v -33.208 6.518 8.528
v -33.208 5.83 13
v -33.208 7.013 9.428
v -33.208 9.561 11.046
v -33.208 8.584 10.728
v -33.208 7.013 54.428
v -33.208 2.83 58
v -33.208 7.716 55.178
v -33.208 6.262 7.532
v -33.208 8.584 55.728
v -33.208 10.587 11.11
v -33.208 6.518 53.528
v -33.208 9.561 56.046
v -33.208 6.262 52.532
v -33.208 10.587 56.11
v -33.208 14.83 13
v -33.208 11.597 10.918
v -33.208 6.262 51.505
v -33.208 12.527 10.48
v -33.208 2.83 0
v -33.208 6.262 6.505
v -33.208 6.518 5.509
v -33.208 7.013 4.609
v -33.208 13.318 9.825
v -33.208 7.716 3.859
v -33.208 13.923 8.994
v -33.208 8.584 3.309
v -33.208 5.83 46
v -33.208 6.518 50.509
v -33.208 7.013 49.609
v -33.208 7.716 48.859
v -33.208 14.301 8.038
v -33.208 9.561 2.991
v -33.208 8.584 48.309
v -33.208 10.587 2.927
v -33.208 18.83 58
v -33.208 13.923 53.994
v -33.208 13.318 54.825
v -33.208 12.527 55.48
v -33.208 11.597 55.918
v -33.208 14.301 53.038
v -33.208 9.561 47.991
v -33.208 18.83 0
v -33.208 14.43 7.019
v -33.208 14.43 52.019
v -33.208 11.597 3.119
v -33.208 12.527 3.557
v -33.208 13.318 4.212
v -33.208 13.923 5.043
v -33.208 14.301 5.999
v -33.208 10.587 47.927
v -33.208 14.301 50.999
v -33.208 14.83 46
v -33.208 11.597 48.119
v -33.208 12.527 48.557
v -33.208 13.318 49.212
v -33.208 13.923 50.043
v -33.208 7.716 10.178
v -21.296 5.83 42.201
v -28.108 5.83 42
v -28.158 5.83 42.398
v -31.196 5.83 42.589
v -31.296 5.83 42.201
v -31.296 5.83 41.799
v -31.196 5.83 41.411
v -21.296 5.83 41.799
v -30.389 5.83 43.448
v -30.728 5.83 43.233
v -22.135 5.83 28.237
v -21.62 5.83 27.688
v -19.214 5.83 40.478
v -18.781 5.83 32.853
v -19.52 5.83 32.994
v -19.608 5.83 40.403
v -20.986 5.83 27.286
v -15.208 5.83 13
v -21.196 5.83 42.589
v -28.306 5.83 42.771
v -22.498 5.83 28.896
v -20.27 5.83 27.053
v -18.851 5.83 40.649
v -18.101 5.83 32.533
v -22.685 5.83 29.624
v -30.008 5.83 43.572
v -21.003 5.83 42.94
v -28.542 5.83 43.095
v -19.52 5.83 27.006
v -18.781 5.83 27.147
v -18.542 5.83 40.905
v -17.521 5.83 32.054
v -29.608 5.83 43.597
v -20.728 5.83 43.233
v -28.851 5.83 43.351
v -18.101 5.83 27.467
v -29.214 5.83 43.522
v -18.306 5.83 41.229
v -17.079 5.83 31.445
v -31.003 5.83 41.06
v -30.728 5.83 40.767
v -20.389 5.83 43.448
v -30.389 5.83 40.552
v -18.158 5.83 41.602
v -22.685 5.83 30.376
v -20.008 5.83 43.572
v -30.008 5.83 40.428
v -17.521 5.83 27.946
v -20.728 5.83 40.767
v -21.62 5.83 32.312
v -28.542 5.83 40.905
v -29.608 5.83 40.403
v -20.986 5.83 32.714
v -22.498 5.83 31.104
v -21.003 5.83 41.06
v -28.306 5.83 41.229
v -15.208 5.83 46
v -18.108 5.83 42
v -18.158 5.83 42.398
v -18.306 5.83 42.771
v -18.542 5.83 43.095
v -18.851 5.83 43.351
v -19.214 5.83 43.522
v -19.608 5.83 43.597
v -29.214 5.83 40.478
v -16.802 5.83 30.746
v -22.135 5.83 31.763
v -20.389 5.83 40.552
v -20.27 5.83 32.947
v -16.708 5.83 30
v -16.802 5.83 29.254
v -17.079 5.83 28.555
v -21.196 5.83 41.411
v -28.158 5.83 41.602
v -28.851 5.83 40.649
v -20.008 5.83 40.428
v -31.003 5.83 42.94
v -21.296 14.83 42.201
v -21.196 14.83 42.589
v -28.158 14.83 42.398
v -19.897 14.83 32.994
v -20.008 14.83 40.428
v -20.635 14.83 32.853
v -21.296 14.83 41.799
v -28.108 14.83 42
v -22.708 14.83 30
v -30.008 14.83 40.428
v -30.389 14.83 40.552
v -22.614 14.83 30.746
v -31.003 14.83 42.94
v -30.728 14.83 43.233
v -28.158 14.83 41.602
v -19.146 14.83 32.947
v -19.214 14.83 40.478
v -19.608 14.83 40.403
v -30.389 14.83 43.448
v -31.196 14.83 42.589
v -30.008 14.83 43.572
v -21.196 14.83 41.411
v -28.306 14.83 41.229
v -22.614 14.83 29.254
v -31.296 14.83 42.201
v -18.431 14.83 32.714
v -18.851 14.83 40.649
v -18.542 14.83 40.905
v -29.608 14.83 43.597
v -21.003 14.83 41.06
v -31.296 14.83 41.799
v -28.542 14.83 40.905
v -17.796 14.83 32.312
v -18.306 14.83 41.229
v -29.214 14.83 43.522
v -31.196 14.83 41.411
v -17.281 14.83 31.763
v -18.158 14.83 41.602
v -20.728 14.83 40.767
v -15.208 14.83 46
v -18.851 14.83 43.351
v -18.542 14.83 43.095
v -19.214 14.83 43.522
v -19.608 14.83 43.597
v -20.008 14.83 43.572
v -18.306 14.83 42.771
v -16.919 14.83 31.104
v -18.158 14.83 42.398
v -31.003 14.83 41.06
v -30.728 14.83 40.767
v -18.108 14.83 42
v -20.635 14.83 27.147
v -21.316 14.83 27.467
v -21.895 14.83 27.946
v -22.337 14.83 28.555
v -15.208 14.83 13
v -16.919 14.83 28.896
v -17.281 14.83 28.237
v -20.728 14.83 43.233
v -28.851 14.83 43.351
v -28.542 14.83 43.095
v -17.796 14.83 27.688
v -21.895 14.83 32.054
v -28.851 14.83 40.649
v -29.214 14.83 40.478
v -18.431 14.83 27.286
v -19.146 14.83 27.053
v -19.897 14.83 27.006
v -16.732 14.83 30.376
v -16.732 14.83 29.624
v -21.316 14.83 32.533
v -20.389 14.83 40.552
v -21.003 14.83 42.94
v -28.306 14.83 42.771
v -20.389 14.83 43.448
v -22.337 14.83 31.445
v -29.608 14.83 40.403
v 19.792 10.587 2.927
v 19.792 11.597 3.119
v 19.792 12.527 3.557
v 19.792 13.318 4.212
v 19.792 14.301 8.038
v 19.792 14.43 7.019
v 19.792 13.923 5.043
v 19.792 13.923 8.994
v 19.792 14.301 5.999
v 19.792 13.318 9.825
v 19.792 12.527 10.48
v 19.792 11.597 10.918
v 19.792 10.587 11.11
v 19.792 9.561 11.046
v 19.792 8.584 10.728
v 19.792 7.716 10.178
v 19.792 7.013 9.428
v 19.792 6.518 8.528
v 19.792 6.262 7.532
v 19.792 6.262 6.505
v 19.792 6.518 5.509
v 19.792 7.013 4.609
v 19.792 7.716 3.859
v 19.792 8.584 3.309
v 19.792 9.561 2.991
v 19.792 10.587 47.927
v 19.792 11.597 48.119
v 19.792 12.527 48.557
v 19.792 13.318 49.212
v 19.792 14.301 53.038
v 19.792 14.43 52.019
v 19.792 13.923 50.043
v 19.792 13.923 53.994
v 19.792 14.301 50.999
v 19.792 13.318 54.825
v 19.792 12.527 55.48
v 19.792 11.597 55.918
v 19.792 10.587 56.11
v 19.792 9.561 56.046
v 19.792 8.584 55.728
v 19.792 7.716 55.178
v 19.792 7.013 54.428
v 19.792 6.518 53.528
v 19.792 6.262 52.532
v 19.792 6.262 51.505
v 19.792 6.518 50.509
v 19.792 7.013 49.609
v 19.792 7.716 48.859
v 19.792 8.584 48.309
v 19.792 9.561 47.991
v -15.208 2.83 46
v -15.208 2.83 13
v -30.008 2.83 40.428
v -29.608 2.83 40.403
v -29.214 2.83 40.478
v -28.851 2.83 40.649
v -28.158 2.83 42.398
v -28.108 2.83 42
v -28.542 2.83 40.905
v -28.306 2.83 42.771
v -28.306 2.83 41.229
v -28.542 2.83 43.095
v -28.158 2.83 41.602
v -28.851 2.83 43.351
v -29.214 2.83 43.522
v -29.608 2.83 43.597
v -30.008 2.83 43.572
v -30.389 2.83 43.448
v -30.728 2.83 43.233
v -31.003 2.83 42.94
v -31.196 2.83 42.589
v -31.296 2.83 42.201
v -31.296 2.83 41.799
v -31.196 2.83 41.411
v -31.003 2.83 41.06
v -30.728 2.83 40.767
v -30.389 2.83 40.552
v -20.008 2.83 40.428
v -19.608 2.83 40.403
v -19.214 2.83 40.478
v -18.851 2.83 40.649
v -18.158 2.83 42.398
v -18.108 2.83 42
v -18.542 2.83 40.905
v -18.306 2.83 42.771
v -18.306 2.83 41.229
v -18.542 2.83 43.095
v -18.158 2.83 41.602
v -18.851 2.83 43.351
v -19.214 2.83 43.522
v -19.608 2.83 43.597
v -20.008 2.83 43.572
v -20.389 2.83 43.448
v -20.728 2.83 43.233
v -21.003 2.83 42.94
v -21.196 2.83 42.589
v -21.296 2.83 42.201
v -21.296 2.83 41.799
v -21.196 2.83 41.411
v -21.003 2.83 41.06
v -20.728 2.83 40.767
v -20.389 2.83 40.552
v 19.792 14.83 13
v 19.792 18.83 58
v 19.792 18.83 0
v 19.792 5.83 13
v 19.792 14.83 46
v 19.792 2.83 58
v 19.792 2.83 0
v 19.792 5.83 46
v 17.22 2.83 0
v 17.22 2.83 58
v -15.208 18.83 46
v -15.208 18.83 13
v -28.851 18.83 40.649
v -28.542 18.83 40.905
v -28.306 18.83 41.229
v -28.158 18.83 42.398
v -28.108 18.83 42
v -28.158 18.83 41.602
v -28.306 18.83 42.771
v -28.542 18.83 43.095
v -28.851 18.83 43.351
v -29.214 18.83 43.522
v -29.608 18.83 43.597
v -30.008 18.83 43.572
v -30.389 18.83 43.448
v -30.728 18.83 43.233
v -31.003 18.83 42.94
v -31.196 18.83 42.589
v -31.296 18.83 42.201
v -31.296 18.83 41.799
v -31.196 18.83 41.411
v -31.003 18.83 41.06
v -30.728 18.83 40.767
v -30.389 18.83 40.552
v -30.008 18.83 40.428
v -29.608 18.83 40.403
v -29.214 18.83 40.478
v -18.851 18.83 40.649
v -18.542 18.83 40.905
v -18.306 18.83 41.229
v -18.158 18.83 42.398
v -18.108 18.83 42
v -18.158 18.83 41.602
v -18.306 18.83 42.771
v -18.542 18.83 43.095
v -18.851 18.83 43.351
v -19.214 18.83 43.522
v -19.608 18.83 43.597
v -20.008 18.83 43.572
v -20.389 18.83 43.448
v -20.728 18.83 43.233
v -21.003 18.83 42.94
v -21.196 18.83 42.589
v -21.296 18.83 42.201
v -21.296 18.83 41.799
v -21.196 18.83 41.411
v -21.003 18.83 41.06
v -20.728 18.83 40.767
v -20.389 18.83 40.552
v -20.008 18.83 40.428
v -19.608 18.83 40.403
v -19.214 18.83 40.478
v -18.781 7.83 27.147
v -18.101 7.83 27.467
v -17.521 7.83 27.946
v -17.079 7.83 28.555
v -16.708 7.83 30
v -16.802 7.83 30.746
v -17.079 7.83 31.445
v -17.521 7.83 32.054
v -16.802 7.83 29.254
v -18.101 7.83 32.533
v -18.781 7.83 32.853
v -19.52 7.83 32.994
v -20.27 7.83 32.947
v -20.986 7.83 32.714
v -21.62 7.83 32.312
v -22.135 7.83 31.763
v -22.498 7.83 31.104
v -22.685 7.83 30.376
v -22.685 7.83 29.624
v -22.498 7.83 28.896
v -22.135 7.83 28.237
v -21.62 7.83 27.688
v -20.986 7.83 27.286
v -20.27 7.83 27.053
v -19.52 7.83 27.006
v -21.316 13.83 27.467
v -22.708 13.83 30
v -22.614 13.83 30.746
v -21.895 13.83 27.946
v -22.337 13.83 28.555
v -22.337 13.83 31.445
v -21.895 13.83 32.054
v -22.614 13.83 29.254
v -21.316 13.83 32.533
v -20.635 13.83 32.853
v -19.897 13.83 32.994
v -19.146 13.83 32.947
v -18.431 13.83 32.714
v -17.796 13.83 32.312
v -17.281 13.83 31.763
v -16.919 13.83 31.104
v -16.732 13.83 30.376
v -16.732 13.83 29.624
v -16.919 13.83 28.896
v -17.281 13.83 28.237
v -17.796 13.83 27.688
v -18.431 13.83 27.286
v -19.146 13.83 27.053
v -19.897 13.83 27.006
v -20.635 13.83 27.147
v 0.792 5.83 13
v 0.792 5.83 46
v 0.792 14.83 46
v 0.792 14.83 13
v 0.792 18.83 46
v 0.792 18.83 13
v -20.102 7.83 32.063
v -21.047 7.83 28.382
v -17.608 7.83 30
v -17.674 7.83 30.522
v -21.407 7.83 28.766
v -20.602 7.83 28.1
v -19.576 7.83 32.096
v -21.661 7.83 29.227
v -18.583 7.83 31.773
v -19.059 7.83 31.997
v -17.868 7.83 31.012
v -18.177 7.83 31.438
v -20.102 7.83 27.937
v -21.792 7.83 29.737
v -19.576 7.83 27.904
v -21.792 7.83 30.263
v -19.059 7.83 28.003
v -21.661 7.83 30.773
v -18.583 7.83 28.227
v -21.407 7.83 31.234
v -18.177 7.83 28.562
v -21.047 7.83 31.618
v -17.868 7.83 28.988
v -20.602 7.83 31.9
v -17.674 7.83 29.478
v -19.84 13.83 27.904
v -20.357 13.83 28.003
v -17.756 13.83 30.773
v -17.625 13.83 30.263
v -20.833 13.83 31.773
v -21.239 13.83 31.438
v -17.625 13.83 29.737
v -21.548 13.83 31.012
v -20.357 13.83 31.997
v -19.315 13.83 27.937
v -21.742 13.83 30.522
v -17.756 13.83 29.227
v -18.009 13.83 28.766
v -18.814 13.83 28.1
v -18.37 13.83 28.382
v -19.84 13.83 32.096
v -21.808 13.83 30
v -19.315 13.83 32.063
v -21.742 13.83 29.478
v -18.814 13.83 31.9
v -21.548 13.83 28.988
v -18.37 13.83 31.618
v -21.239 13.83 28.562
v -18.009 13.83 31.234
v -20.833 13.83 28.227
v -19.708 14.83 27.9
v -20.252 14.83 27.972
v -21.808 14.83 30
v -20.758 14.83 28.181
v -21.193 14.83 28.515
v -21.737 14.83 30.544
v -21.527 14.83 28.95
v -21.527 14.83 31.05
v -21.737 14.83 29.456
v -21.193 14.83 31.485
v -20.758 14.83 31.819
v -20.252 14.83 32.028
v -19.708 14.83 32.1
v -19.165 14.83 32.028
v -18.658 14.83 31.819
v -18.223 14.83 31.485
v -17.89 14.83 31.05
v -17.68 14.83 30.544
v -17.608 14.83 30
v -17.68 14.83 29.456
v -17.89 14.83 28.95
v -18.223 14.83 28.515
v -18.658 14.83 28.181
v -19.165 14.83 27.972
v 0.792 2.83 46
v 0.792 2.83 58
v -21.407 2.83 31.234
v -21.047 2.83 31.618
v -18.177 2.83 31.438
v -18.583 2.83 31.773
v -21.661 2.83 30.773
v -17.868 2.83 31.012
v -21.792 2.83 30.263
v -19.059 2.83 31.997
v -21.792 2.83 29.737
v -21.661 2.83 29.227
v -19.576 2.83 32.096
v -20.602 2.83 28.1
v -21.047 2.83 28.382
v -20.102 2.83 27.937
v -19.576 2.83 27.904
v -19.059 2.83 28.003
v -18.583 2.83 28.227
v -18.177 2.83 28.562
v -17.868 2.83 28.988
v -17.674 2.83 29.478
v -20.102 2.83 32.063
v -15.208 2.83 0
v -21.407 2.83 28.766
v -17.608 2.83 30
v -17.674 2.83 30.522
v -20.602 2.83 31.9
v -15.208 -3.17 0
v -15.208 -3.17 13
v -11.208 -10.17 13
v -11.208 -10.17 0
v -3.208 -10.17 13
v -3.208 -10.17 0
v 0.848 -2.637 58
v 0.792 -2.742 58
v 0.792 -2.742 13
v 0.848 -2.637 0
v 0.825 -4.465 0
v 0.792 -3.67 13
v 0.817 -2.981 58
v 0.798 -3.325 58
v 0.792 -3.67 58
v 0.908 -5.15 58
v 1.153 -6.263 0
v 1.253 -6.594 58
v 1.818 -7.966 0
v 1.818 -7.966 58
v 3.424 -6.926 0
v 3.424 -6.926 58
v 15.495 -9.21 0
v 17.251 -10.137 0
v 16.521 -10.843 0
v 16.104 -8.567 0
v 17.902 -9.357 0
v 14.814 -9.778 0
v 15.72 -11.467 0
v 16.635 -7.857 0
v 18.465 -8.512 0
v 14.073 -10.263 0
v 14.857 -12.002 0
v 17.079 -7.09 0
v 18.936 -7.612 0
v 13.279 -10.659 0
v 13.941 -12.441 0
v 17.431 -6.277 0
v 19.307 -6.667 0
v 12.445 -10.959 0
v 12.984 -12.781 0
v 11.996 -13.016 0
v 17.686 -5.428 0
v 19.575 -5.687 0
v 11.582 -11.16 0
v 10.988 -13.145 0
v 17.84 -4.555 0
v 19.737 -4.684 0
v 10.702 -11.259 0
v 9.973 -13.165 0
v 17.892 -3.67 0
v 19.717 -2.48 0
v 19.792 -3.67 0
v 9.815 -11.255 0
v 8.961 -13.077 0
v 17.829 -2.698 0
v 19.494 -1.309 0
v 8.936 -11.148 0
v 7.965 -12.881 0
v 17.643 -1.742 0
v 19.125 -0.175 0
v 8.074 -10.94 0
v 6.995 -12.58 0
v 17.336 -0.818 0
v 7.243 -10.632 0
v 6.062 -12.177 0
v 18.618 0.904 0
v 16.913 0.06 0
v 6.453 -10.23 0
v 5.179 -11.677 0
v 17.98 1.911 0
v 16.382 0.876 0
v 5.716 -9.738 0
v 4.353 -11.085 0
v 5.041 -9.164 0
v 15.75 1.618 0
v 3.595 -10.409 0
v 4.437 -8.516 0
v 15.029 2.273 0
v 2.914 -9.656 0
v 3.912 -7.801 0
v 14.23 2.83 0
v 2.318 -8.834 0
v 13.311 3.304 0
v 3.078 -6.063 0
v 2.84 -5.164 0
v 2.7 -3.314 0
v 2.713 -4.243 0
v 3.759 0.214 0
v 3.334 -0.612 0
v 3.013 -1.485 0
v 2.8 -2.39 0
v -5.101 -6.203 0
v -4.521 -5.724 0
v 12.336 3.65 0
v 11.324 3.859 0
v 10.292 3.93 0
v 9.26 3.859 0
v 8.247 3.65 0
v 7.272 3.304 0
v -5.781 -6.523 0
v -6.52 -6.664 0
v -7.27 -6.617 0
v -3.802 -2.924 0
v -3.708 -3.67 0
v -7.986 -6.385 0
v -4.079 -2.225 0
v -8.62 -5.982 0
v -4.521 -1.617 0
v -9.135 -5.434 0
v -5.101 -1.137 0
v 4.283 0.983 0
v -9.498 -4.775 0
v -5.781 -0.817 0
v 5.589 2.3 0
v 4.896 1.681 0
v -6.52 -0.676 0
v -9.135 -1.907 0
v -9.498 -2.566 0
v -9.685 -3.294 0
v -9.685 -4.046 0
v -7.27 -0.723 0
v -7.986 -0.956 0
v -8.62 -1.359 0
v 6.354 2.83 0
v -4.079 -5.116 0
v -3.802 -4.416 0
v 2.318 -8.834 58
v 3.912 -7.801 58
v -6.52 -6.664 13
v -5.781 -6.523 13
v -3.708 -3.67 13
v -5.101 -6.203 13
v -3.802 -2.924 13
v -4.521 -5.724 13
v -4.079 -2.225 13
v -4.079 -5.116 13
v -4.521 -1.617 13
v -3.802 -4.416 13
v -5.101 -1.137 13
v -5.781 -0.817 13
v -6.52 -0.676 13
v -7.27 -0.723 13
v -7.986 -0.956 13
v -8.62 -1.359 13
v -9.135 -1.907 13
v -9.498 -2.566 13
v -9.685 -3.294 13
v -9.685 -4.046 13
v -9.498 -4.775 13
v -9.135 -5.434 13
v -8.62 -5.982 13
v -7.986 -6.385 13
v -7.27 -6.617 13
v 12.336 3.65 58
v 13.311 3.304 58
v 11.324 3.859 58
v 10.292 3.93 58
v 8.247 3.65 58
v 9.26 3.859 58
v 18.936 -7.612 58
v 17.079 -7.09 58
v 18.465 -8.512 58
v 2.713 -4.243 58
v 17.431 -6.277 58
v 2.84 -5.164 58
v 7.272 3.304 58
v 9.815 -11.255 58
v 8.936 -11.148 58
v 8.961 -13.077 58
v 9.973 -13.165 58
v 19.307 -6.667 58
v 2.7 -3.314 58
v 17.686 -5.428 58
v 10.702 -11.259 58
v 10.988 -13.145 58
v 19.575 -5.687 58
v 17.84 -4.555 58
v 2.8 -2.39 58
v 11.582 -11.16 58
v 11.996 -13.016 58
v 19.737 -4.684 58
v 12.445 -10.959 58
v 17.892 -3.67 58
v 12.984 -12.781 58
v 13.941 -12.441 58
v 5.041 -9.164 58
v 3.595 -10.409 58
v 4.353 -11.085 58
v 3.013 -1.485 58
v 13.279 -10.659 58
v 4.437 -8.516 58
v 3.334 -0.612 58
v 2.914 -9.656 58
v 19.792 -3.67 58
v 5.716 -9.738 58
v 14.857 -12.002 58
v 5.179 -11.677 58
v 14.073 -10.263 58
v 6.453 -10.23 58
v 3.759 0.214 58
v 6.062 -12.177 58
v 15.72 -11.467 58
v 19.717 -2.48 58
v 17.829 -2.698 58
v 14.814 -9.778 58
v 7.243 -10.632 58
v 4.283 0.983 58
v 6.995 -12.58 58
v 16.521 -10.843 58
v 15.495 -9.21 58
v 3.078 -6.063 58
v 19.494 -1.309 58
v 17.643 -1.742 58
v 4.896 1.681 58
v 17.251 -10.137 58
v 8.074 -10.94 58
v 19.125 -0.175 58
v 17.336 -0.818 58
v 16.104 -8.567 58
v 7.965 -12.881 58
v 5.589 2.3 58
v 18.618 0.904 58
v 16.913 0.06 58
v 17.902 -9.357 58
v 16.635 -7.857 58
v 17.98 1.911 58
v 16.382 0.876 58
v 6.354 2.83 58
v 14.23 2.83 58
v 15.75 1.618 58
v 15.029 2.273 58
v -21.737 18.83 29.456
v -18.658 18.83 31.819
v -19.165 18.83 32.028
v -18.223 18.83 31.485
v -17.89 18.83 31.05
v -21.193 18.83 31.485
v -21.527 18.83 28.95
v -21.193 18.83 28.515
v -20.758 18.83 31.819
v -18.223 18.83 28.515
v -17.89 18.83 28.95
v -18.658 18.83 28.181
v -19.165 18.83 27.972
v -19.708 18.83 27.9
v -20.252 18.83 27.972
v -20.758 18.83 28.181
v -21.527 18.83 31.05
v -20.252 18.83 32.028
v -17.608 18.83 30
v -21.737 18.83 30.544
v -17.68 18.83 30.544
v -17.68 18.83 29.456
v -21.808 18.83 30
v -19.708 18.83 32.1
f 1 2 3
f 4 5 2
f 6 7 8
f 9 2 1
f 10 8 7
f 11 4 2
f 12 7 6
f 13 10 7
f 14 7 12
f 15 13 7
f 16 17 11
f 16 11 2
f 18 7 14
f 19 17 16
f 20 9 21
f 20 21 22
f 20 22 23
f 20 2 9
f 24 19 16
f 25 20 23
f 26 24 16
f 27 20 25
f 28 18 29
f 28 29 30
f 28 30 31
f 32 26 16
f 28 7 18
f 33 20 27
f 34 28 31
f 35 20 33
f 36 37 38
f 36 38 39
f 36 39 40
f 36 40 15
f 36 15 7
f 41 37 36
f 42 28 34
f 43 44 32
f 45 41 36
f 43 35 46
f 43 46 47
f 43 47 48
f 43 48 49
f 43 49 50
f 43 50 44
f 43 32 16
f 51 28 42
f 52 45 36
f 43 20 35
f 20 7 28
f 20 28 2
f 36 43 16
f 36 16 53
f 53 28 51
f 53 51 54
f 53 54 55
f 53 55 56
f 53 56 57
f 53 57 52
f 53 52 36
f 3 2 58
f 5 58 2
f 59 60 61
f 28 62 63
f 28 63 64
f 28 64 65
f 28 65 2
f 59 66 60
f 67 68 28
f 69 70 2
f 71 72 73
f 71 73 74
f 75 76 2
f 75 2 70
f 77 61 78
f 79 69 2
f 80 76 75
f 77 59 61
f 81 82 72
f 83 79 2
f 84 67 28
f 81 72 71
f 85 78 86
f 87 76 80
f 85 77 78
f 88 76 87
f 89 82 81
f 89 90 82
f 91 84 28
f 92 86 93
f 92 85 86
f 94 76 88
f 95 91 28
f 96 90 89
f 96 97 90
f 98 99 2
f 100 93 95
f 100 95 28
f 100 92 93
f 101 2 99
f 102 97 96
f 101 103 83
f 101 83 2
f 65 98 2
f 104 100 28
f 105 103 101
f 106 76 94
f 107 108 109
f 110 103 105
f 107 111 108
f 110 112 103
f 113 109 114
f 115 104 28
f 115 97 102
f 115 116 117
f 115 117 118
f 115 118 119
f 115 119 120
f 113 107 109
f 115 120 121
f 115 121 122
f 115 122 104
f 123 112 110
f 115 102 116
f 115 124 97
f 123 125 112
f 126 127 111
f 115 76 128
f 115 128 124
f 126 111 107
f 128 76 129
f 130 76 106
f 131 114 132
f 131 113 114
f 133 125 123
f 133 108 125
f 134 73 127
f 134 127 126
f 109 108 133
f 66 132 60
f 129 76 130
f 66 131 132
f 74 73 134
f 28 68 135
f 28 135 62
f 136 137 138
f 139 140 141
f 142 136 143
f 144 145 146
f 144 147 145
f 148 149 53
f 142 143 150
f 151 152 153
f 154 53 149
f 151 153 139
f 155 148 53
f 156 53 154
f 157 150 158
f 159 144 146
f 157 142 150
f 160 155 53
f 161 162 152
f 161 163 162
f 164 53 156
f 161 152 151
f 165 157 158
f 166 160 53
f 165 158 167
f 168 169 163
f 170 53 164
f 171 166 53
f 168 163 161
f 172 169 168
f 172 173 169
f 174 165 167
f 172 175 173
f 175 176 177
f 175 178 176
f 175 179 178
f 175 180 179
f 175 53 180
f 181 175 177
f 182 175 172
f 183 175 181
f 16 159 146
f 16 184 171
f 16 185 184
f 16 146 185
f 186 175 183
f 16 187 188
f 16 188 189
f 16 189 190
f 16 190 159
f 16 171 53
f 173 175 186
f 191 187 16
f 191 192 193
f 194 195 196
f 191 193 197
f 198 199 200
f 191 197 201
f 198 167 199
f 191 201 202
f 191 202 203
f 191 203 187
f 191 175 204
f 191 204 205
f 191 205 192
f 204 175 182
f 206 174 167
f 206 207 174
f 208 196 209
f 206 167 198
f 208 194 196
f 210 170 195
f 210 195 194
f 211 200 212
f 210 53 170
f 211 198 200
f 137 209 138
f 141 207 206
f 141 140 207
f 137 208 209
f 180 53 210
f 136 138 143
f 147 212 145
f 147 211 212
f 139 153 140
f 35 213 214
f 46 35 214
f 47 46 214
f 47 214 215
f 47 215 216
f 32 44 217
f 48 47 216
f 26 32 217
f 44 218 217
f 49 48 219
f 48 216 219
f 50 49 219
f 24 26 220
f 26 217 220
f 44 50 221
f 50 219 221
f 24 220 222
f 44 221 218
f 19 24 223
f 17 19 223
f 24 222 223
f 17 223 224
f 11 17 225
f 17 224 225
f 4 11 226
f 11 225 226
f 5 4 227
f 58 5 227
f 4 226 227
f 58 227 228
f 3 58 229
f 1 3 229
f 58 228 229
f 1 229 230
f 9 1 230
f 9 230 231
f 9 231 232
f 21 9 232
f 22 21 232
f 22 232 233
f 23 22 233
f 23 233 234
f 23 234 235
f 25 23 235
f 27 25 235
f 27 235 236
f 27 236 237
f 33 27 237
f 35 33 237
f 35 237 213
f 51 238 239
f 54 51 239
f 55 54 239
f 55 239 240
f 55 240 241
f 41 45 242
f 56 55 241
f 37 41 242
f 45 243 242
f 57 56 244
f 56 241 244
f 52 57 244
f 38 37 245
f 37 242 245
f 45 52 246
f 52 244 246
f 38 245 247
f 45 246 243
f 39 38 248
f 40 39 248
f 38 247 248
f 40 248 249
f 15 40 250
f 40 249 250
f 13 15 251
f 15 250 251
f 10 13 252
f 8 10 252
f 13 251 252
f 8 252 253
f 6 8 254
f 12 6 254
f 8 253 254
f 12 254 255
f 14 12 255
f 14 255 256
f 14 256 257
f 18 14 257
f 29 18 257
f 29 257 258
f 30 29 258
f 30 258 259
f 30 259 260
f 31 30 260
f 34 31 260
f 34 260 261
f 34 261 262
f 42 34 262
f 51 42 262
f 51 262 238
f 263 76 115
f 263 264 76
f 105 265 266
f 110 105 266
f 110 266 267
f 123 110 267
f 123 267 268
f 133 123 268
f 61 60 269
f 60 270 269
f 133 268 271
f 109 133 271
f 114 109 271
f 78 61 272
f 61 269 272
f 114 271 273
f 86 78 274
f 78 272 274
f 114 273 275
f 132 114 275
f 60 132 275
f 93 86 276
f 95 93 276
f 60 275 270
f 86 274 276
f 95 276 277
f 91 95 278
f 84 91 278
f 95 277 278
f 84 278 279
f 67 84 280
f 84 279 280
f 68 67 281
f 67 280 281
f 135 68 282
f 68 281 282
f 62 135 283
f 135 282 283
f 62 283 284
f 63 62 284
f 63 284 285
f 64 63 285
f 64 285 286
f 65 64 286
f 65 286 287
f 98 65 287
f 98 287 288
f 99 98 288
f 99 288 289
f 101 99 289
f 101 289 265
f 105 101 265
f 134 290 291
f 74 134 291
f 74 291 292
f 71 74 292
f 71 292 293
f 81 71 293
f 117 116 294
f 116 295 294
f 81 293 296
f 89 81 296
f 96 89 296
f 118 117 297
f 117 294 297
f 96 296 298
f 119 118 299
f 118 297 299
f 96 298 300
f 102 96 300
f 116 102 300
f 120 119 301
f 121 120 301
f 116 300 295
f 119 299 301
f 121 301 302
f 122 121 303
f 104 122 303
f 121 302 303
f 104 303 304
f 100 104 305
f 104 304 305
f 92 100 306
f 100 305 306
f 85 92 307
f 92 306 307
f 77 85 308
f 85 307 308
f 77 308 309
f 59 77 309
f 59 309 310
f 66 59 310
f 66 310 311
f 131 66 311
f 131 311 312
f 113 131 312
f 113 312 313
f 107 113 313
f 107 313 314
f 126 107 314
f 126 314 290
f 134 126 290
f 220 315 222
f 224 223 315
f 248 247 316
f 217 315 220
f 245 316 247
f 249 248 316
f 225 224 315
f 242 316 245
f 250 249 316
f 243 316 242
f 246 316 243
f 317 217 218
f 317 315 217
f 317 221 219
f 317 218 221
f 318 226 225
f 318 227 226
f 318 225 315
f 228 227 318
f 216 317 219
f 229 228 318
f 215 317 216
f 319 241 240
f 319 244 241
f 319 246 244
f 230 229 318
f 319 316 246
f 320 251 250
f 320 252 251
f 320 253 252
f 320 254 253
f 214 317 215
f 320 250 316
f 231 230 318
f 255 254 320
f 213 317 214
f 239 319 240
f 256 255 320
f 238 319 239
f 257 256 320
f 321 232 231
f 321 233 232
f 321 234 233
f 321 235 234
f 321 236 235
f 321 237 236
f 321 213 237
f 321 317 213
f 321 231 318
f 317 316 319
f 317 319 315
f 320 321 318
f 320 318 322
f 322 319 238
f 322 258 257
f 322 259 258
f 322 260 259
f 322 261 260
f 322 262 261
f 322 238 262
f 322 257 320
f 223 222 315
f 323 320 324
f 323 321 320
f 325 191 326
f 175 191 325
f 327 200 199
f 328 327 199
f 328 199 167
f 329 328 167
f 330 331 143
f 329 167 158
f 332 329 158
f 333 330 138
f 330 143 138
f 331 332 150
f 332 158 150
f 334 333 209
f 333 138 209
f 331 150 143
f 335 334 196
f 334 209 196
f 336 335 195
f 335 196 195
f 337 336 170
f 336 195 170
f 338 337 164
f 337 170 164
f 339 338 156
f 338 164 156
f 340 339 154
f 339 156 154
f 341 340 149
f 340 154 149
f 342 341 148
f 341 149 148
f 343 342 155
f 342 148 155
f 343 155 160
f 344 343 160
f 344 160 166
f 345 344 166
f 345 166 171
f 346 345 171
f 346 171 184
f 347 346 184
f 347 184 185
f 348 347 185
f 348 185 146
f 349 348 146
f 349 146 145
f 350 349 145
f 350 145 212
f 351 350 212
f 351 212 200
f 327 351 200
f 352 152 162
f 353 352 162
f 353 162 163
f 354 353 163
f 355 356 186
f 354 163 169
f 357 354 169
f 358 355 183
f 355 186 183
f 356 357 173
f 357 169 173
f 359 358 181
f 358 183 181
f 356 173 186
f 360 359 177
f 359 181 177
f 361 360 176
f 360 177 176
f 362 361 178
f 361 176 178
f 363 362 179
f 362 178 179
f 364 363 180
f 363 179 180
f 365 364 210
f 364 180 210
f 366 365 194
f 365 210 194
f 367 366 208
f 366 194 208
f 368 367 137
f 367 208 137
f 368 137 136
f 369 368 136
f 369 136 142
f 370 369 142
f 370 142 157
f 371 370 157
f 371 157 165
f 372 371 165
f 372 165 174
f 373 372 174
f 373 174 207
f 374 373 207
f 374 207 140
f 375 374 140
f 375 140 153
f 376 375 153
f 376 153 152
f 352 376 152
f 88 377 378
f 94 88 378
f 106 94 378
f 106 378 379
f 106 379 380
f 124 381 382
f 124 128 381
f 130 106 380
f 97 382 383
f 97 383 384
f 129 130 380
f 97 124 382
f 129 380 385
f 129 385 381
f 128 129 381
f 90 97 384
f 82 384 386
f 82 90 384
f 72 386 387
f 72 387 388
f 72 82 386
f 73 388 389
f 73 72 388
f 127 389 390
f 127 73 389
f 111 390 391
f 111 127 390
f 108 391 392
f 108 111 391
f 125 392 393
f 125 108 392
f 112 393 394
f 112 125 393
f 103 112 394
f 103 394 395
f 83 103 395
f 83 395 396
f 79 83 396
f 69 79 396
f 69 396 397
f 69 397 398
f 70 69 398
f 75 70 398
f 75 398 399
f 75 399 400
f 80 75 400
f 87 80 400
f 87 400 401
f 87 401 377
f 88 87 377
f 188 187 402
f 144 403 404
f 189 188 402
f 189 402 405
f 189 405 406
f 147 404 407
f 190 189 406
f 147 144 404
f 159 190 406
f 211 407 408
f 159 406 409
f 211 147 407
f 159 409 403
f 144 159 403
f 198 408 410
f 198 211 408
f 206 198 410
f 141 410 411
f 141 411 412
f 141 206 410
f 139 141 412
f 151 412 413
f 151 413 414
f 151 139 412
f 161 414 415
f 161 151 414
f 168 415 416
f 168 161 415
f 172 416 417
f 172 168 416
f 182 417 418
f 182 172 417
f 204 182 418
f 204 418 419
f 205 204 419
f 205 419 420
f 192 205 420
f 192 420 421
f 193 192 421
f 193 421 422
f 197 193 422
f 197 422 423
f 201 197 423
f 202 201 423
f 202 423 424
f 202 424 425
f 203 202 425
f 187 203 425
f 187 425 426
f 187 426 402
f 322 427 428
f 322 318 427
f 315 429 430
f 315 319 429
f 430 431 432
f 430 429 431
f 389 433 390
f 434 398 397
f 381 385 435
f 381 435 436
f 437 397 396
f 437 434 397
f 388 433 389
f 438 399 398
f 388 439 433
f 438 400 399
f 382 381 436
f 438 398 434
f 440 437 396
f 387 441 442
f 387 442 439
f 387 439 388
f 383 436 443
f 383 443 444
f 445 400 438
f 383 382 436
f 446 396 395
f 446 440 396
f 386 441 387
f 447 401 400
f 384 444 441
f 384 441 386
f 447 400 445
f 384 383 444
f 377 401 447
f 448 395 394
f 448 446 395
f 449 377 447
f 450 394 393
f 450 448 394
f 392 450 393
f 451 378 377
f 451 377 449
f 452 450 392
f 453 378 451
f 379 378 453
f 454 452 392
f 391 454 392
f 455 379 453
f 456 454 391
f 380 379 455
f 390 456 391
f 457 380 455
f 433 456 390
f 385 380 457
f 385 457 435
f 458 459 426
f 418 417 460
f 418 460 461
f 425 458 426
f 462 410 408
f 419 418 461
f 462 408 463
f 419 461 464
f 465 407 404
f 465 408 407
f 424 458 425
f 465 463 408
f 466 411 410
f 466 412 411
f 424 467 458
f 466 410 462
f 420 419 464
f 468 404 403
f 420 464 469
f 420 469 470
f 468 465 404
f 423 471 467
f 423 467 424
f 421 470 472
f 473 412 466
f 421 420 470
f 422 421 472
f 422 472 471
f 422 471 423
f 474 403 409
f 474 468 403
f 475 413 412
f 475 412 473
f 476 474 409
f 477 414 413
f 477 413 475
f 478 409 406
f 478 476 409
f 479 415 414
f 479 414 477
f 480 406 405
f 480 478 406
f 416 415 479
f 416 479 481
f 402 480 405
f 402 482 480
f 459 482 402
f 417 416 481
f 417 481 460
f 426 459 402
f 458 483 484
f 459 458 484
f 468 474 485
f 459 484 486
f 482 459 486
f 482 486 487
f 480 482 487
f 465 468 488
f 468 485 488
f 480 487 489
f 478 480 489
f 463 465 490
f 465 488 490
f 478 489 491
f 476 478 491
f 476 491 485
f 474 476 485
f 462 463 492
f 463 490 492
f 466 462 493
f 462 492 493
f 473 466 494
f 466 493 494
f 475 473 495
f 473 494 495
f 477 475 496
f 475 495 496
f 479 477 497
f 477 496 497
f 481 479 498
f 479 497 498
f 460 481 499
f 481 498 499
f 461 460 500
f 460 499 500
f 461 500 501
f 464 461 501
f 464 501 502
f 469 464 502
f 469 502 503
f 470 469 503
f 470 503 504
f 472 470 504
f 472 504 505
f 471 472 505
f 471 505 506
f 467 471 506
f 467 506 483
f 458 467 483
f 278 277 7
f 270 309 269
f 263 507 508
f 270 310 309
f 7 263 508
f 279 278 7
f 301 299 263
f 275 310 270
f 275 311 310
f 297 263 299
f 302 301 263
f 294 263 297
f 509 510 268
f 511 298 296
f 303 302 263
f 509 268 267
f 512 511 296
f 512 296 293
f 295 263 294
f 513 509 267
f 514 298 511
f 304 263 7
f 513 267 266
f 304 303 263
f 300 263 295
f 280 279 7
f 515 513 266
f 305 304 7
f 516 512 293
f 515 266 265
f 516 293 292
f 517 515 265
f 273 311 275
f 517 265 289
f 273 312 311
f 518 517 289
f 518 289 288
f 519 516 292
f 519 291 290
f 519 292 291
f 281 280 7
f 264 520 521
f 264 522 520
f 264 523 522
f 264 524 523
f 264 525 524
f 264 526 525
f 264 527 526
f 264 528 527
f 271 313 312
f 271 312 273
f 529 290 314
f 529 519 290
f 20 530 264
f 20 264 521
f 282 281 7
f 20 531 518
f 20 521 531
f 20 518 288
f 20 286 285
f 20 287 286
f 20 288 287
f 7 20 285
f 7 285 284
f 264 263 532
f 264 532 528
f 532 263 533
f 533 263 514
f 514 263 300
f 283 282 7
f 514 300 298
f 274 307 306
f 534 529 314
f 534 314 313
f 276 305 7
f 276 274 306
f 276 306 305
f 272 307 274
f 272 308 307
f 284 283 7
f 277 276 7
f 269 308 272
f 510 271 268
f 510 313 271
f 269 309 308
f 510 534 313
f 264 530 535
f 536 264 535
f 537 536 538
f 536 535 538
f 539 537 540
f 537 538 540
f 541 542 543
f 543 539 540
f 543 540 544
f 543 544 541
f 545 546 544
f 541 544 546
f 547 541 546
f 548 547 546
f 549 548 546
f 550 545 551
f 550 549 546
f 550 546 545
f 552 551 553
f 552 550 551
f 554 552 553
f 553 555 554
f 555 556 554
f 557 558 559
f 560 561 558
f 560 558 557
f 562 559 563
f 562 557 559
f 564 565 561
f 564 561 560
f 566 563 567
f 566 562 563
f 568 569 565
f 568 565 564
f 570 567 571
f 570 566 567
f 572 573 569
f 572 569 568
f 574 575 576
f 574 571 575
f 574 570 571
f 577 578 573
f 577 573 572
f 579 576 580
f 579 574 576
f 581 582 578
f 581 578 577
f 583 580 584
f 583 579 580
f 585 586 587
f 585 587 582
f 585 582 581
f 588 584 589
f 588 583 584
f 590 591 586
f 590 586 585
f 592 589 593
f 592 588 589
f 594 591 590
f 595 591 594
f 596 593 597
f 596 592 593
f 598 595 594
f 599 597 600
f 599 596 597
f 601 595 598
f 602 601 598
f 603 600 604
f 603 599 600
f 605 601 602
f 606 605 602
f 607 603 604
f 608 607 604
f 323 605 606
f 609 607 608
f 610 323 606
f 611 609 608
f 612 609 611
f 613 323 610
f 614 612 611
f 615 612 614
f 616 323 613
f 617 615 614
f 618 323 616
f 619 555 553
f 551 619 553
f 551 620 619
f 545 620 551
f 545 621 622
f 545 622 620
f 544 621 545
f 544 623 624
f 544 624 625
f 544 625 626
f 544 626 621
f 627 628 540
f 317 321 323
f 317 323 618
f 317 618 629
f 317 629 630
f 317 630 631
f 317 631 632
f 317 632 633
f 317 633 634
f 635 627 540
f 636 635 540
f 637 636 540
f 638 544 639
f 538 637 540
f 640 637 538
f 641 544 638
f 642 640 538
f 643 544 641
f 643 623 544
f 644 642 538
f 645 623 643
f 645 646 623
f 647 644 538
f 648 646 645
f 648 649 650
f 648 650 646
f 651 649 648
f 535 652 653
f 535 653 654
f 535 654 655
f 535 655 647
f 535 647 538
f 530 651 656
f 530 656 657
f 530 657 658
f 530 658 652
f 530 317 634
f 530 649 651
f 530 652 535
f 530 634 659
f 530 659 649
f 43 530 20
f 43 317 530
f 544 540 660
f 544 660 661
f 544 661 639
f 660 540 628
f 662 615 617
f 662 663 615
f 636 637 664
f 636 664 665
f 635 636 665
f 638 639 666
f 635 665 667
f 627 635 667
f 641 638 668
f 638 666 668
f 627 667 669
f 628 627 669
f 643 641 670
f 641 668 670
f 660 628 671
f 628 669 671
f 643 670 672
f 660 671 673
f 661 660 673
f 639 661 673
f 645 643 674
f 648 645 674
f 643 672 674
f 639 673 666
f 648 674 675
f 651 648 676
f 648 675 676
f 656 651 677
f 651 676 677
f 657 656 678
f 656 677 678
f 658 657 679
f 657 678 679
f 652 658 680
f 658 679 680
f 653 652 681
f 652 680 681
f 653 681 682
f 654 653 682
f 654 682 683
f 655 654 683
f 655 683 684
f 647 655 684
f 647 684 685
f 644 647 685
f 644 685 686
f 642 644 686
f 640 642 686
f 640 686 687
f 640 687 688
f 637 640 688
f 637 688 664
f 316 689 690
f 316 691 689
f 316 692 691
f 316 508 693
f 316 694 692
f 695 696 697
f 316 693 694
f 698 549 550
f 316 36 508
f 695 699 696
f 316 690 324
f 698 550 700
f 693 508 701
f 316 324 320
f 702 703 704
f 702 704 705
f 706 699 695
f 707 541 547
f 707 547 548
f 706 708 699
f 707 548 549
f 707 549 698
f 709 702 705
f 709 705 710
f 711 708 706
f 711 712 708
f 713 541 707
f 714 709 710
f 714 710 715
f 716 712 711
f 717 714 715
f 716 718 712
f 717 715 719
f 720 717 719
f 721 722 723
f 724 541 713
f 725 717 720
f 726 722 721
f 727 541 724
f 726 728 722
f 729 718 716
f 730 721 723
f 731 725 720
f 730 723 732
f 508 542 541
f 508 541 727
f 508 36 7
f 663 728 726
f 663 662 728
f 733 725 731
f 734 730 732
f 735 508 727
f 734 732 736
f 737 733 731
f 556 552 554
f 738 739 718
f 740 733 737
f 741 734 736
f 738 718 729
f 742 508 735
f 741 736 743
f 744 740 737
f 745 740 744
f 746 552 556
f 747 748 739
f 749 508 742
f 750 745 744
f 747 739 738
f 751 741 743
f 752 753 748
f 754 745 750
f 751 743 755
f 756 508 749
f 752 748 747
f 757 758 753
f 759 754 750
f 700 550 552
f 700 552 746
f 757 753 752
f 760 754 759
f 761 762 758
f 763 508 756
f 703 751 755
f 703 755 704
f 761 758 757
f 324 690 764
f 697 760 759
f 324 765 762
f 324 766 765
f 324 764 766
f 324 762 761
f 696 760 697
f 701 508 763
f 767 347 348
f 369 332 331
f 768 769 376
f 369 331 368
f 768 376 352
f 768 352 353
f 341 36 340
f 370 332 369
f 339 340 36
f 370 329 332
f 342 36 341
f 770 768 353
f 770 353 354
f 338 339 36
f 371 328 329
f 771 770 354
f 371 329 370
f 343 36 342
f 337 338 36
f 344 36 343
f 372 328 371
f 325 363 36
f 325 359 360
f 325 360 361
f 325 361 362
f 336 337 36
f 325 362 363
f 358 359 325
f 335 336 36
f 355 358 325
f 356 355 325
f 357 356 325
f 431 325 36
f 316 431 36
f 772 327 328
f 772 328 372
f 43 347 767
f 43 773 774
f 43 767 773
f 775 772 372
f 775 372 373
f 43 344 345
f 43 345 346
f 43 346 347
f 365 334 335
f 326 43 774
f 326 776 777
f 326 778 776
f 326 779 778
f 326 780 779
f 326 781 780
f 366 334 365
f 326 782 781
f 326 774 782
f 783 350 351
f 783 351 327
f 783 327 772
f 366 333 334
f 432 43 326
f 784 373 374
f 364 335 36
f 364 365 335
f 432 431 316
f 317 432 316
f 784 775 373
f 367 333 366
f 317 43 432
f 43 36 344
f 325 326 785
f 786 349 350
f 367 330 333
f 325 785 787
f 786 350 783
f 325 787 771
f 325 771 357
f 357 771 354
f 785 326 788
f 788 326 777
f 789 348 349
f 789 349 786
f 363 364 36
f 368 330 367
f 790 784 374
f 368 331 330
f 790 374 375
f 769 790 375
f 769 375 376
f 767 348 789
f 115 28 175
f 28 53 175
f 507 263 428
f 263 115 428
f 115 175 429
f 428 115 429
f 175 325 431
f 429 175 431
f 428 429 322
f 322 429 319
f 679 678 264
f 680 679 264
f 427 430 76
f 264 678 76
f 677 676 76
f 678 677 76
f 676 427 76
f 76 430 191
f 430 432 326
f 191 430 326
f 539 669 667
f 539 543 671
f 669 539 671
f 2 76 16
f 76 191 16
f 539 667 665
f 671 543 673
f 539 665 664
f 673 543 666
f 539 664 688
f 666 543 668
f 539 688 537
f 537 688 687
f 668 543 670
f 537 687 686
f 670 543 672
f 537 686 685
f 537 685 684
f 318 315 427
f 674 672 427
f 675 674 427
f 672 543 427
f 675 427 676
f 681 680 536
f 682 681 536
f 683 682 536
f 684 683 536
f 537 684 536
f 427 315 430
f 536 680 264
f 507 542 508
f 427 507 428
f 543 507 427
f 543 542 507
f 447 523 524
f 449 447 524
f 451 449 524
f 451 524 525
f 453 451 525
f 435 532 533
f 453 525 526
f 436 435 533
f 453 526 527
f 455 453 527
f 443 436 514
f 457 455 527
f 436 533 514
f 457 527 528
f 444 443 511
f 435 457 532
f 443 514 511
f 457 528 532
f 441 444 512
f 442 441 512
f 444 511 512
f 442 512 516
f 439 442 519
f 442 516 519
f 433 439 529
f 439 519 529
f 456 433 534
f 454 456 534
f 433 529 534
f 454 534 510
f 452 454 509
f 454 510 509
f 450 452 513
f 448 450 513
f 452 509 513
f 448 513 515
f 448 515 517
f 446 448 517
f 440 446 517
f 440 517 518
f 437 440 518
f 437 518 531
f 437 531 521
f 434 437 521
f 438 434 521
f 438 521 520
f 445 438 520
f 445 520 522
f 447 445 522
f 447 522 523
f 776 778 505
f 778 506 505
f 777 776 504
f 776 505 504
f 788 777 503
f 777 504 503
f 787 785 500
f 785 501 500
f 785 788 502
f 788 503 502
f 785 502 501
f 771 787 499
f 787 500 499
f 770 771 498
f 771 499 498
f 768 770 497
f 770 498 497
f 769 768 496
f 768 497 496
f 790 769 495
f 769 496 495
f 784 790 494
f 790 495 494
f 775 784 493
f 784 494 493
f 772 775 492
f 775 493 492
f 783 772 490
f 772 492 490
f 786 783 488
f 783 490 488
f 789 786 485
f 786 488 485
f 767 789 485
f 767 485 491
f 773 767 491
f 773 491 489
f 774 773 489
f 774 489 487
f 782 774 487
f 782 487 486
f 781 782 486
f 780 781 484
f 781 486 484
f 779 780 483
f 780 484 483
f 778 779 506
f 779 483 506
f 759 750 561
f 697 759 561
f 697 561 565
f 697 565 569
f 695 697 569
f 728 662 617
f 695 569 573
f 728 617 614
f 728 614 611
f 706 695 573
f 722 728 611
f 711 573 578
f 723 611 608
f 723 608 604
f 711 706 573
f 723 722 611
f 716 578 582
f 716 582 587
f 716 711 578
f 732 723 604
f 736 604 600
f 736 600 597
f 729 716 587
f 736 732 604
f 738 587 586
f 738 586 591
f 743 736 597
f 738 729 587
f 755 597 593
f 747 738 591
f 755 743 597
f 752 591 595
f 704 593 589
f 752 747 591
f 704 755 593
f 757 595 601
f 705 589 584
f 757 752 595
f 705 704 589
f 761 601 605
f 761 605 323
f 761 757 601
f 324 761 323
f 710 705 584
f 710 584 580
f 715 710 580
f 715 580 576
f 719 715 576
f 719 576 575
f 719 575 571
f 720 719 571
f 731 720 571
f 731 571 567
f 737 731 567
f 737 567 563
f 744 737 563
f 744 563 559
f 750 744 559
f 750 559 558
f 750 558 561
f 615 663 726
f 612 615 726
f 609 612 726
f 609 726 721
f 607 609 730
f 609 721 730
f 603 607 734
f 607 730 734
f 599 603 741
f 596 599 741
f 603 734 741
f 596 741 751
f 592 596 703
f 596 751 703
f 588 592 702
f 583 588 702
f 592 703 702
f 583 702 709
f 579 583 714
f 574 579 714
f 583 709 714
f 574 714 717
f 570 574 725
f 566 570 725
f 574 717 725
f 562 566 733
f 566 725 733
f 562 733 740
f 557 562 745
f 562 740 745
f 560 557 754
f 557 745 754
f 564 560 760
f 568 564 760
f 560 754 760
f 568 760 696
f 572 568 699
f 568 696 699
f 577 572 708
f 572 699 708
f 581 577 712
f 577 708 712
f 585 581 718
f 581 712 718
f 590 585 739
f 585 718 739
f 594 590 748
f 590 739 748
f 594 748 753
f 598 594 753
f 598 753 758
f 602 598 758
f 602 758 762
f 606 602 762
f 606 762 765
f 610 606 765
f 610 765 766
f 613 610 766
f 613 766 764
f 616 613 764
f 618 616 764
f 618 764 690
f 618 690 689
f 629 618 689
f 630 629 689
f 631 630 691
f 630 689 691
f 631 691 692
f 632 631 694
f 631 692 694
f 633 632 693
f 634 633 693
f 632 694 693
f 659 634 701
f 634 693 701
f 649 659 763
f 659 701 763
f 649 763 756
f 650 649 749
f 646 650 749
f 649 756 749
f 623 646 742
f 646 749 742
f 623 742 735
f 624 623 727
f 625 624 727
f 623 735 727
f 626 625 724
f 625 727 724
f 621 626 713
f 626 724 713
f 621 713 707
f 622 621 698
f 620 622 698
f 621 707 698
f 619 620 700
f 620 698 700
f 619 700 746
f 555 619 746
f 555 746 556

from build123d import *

# Parameters (mm, degrees)
PAD_DEPTH       = 58
SKETCH001_R     = 9.5
SKETCH001_R_2   = 7.6
PAD001_DEPTH    = 58
SKETCH002_R     = 7.6
SKETCH002_R_2   = 3
POCKET_DEPTH    = 58
SKETCH003_R     = 4.1
SKETCH003_W     = 9
SKETCH003_H     = 33
POCKET001_DEPTH = 53
SKETCH004_W     = 16
SKETCH004_H     = 16
POCKET002_DEPTH = 45
SKETCH005_W     = 16
SKETCH005_H     = 33
POCKET003_DEPTH = 40
SKETCH006_R     = 2.1
SKETCH006_R_2   = 1.6
POCKET004_DEPTH = 30
SKETCH007_R     = 3
SKETCH007_R_2   = 2.1
PAD002_DEPTH    = 5
SKETCH008_R     = 3
SKETCH008_R_2   = 2.1
PAD003_DEPTH    = 5
POCKET005_DEPTH = 58


with BuildPart() as part:
    # Sketch → Pad (new body)
    with BuildSketch(Plane.XY):
        Polygon((-33.20822, 18.829675), (19.79178, 18.829675), (19.79178, 2.829675), (3.79178, 2.829675), (-3.20822, -10.170325), (-11.20822, -10.170325), (-15.20822, -3.170325), (-15.20822, 2.829675), (-33.20822, 2.829675), align=None)
    extrude(amount=PAD_DEPTH)

    # Sketch001 → Pad001 (new body)
    with BuildSketch(Plane.XY.offset(58)):
        with Locations((10.29178, -3.670325)):
            Circle(SKETCH001_R)
        with Locations((10.29178, -3.670325)):
            Circle(SKETCH001_R_2, mode=Mode.SUBTRACT)
    extrude(amount=-PAD001_DEPTH)

    # Sketch002 → Pocket (cut)
    with BuildSketch(Plane.XY.offset(58)):
        with Locations((10.29178, -3.670325)):
            Circle(SKETCH002_R)
        with Locations((-6.70822, -3.670325)):
            Circle(SKETCH002_R_2)
    extrude(amount=-POCKET_DEPTH, mode=Mode.SUBTRACT)

    # Sketch003 → Pocket001 (cut)
    with BuildSketch(Plane.YZ.offset(19.79178)):
        with Locations((10.329675, 52.018545)):
            Circle(SKETCH003_R)
        with Locations((10.329675, 7.018545)):
            Circle(SKETCH003_R)
        with Locations((10.329675, 29.5)):
            Rectangle(SKETCH003_W, SKETCH003_H)
    extrude(amount=-POCKET001_DEPTH, mode=Mode.SUBTRACT)

    # Sketch004 → Pocket002 (cut)
    with BuildSketch(Plane.XY.offset(58)):
        with Locations((-7.20822, -5.170325)):
            Rectangle(SKETCH004_W, SKETCH004_H)
    extrude(amount=-POCKET002_DEPTH, mode=Mode.SUBTRACT)

    # Sketch005 → Pocket003 (cut)
    with BuildSketch(Plane.XZ.offset(-2.829675)):
        with Locations((-7.20822, 29.5)):
            Rectangle(SKETCH005_W, SKETCH005_H)
    extrude(amount=-POCKET003_DEPTH, mode=Mode.SUBTRACT)

    # Sketch006 → Pocket004 (cut)
    with BuildSketch(Plane.XZ.offset(-2.829675)):
        with Locations((-19.70822, 30)):
            Circle(SKETCH006_R)
        with Locations((-29.70822, 42)):
            Circle(SKETCH006_R_2)
        with Locations((-19.70822, 42)):
            Circle(SKETCH006_R_2)
    extrude(amount=-POCKET004_DEPTH, mode=Mode.SUBTRACT)

    # Sketch007 → Pad002 (new body)
    with BuildSketch(Plane.XZ.offset(-2.829675)):
        with Locations((-19.70822, 30)):
            Circle(SKETCH007_R)
        with Locations((-19.70822, 30)):
            Circle(SKETCH007_R_2, mode=Mode.SUBTRACT)
    extrude(amount=-PAD002_DEPTH)

    # Sketch008 → Pad003 (new body)
    with BuildSketch(Plane(origin=(0, 18.829675, 0), x_dir=(-1, 0, 0), z_dir=(0, 1, 0))):
        with Locations((19.70822, 30)):
            Circle(SKETCH008_R)
        with Locations((19.70822, 30)):
            Circle(SKETCH008_R_2, mode=Mode.SUBTRACT)
    extrude(amount=-PAD003_DEPTH)

    # Sketch009 → Pocket005 (cut)
    with BuildSketch(Plane.XY.offset(58)):
        Polygon((10.557791, -2.306743), (-0.062185, -9.183362), (0.481338, -10.022756), (11.101313, -3.146138), align=None)
    extrude(amount=-POCKET005_DEPTH, mode=Mode.SUBTRACT)


solid = part.part
